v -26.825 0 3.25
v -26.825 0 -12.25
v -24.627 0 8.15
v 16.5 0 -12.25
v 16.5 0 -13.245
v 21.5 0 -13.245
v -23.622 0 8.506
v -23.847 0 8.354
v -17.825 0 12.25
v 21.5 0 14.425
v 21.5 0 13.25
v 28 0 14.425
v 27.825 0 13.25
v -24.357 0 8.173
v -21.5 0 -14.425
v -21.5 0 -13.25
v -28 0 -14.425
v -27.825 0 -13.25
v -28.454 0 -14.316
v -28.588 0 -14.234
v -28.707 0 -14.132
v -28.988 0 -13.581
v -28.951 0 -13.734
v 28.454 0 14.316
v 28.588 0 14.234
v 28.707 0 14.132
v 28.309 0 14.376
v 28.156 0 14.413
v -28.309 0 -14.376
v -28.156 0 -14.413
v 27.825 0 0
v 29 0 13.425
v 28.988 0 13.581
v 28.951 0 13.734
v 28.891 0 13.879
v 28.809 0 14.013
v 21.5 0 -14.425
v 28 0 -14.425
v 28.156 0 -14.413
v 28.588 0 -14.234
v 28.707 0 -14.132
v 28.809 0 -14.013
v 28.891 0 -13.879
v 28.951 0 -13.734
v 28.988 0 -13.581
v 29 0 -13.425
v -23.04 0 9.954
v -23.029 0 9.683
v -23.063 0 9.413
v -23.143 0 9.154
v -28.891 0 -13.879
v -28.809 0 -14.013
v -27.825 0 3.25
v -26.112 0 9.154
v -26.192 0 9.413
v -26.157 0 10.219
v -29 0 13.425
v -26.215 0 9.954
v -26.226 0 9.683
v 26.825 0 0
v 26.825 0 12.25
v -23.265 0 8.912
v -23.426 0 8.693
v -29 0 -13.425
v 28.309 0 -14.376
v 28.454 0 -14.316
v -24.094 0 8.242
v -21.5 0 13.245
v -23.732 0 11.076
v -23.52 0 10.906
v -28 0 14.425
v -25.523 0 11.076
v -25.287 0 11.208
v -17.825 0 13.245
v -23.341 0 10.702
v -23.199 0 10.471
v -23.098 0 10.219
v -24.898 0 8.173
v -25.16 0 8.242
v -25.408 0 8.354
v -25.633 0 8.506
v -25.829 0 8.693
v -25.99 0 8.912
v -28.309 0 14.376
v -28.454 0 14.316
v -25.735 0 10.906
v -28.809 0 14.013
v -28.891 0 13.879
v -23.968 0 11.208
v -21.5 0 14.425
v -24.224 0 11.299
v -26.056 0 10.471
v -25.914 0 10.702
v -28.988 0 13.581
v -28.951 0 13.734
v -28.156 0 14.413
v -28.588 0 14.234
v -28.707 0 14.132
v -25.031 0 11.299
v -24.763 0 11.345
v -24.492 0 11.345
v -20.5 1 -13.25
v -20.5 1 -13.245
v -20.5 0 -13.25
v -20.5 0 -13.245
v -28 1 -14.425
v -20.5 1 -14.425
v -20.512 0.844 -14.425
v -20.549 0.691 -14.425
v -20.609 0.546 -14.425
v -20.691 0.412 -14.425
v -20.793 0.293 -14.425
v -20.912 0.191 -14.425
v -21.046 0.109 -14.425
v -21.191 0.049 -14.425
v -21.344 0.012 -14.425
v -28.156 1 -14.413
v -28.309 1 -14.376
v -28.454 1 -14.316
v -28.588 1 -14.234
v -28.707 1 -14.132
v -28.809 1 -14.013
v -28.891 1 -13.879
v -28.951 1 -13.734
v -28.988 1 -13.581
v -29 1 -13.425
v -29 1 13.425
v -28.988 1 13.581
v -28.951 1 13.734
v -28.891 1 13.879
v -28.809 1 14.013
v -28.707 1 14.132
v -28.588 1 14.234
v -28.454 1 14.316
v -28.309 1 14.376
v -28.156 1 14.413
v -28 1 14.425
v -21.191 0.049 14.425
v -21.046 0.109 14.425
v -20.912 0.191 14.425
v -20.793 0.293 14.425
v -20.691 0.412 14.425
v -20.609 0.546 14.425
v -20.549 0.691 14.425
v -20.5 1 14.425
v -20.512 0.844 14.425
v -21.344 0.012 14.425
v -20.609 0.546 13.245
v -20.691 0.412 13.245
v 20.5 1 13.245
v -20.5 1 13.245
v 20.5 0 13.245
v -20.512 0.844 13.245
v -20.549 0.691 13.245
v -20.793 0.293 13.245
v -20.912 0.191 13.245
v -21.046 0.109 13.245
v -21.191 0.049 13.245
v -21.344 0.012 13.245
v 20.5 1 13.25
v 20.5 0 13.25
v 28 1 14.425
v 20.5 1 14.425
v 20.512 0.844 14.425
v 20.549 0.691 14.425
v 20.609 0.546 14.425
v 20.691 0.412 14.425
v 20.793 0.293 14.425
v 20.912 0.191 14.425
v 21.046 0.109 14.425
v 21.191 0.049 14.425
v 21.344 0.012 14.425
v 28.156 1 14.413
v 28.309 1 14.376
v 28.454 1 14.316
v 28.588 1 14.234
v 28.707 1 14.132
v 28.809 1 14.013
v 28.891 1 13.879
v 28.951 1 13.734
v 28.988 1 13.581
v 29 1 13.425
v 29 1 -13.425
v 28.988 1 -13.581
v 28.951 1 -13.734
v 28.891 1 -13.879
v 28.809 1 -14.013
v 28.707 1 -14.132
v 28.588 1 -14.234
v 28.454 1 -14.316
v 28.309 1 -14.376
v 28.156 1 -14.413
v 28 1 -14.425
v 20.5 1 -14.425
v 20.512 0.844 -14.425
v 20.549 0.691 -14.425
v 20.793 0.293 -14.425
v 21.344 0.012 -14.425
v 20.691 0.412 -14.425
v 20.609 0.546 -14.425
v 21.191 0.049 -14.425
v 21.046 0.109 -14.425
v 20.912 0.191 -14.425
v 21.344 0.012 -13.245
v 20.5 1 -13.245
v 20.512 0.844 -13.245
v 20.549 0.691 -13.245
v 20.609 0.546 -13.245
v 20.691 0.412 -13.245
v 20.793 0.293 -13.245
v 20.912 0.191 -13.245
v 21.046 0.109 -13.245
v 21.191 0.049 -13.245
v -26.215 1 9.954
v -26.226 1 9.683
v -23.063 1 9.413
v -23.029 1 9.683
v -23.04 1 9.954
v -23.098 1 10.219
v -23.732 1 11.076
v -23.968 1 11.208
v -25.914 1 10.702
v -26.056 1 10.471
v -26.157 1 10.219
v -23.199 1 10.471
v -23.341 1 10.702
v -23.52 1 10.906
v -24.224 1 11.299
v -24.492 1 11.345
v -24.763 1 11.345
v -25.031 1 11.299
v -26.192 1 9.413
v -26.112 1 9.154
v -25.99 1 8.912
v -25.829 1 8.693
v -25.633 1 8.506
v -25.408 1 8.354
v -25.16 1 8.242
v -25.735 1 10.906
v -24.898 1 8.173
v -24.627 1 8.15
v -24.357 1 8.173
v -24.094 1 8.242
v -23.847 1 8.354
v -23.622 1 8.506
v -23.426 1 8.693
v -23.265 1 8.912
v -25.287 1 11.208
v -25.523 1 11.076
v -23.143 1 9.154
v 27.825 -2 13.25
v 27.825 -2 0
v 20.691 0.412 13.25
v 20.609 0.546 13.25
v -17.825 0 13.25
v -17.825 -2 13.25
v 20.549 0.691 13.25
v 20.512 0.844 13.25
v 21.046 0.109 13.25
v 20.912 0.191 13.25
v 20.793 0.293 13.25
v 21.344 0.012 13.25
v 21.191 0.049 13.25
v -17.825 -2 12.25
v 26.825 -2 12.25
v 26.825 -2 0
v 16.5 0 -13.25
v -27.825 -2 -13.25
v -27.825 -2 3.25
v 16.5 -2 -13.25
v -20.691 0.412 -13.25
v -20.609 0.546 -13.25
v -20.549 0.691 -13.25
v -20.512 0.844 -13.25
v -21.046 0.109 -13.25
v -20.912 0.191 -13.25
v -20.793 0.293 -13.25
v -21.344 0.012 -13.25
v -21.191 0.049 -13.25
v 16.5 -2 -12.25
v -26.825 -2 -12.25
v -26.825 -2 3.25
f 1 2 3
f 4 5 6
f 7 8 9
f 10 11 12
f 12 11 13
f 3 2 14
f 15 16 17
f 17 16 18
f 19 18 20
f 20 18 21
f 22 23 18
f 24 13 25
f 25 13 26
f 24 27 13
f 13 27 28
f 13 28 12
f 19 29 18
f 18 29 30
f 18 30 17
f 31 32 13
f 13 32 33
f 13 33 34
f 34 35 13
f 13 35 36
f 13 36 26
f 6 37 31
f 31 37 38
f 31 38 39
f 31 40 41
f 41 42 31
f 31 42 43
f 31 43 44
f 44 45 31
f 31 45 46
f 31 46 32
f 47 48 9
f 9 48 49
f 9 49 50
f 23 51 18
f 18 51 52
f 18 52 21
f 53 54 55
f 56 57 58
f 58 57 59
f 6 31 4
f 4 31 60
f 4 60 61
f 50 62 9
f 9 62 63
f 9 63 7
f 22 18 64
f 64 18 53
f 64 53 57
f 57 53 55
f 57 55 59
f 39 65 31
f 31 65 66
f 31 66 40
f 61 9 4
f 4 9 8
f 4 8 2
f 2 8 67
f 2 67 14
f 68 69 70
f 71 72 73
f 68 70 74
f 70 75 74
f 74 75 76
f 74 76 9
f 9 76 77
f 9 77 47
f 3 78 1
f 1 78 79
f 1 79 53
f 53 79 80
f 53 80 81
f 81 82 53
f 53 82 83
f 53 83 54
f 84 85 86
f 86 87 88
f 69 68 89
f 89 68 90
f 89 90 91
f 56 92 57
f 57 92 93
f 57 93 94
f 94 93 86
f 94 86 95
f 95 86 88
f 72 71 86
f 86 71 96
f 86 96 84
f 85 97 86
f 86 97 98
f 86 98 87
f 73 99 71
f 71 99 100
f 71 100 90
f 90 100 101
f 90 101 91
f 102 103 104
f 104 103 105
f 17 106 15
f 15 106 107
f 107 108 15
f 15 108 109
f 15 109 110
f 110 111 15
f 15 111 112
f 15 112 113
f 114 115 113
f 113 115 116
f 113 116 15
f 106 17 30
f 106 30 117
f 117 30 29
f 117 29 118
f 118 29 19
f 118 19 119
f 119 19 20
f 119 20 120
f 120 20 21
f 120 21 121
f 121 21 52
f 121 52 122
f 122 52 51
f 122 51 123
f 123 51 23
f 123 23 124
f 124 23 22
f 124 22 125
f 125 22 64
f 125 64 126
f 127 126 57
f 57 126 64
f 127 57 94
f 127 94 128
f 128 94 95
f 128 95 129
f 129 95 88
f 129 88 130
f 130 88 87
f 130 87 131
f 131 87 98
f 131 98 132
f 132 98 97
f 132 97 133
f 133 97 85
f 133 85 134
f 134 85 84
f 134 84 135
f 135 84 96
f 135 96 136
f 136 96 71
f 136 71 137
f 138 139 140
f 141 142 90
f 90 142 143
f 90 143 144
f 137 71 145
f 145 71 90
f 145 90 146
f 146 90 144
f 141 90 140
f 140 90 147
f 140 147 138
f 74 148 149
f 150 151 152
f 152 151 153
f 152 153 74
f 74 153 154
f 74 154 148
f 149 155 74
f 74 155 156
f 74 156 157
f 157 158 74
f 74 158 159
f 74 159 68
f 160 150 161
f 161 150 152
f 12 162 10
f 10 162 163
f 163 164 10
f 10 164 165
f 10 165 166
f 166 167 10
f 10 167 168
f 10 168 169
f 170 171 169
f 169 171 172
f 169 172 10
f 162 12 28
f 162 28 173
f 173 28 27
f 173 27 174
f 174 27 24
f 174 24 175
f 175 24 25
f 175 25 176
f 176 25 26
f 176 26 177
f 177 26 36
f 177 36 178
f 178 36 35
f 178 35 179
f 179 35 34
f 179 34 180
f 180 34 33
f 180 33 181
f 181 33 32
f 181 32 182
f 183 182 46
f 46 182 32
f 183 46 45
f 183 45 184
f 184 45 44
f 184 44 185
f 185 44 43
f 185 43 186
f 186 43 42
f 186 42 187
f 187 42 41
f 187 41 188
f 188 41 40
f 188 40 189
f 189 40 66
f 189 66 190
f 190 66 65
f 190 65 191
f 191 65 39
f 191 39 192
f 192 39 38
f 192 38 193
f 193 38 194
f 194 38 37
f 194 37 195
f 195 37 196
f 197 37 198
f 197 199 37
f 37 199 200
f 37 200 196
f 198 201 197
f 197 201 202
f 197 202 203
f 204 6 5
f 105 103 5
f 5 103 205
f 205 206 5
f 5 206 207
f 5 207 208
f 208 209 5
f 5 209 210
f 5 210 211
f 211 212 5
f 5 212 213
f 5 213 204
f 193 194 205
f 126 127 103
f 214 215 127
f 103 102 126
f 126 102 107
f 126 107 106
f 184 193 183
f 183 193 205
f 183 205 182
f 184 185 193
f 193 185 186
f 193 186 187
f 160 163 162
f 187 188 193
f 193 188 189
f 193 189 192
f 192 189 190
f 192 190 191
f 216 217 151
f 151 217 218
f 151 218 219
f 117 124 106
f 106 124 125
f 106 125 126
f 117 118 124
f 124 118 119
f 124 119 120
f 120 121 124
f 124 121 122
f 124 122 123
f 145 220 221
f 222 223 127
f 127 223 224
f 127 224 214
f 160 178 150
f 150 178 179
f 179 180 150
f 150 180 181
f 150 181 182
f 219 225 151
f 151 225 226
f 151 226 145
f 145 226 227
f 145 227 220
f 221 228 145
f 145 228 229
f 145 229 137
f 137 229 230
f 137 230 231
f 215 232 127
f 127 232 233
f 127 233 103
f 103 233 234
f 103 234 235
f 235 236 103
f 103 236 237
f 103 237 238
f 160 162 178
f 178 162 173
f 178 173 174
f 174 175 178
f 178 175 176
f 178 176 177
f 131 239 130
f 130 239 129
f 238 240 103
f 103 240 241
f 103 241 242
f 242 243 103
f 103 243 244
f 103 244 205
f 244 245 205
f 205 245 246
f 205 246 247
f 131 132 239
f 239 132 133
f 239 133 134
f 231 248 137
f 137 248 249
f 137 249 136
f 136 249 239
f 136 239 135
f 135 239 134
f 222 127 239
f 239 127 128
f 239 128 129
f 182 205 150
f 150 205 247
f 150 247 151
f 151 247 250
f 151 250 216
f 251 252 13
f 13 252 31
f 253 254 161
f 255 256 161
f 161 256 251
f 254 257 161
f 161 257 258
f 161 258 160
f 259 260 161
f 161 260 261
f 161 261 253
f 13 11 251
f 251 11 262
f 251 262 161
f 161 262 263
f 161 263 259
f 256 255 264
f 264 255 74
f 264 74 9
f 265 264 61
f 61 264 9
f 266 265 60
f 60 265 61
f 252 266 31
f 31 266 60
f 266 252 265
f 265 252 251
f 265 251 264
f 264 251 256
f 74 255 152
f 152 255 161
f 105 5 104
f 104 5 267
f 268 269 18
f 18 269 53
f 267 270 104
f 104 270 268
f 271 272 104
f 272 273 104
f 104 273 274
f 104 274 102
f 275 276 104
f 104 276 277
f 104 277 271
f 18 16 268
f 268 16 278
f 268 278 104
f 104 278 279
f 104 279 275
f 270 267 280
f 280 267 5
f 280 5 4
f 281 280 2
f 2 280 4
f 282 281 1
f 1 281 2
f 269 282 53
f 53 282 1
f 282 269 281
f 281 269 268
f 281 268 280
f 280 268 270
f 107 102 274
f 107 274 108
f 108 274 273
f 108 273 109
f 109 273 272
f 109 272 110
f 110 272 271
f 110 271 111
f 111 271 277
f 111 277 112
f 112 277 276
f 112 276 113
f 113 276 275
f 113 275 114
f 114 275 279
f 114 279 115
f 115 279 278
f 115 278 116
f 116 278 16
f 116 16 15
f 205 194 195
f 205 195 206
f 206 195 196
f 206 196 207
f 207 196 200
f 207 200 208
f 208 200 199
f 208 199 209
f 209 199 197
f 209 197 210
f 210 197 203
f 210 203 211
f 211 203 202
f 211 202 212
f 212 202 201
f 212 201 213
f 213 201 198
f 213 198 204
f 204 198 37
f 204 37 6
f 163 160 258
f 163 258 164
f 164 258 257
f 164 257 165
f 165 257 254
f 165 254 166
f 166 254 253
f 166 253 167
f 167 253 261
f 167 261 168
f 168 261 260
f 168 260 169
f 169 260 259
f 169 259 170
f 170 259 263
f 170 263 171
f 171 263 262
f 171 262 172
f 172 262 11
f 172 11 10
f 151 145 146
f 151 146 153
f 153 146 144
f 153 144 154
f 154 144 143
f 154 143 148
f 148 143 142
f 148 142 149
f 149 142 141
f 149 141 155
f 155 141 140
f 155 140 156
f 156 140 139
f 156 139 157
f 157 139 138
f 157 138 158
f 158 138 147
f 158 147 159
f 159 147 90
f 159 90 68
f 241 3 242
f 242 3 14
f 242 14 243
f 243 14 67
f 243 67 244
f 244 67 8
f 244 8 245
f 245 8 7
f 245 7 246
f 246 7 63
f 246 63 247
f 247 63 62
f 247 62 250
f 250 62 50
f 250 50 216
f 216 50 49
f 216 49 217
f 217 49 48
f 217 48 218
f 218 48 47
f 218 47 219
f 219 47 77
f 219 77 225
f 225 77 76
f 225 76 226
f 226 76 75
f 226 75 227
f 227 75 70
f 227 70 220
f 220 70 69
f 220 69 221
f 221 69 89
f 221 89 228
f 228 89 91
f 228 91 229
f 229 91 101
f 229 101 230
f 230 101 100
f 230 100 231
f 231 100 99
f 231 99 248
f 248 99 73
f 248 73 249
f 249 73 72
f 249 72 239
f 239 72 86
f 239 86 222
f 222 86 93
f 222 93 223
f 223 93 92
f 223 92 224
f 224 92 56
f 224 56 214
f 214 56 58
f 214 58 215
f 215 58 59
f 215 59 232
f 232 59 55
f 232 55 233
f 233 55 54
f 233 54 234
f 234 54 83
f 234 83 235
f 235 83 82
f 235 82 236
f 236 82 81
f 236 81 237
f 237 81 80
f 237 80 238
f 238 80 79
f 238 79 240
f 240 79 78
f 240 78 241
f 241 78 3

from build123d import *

# Parameters (mm, degrees)
BOSS_EXTRUDE10_DEPTH = 1
BOSS_EXTRUDE11_DEPTH = 2
FILLET1_R            = 1
SKETCH22_R           = 1.6
CUT_EXTRUDE1_DEPTH   = 10


with BuildPart() as part:
    # Sketch20 → Boss-Extrude10 (new body)
    with BuildSketch(Plane(origin=(0, 0, 0), x_dir=(1, 0, 0), z_dir=(0, 1, 0))):
        with BuildLine():
            Line((-28, 14.425), (-20.5, 14.425))
            Line((-20.5, 14.425), (-20.5, 13.245))
            Line((-20.5, 13.245), (20.5, 13.245))
            Line((20.5, 13.245), (20.5, 14.425))
            Line((20.5, 14.425), (28, 14.425))
            ThreePointArc((28, 14.425), (28.707106781, 14.132106781), (29, 13.425))
            Line((29, 13.425), (29, -13.425))
            ThreePointArc((29, -13.425), (28.707106781, -14.132106781), (28, -14.425))
            Line((28, -14.425), (20.5, -14.425))
            Line((20.5, -14.425), (20.5, -13.245))
            Line((20.5, -13.245), (-20.5, -13.245))
            Line((-20.5, -13.245), (-20.5, -14.425))
            Line((-20.5, -14.425), (-28, -14.425))
            ThreePointArc((-28, -14.425), (-28.707106781, -14.132106781), (-29, -13.425))
            Line((-29, -13.425), (-29, 13.425))
            ThreePointArc((-29, 13.425), (-28.707106781, 14.132106781), (-28, 14.425))
        make_face()
    extrude(amount=BOSS_EXTRUDE10_DEPTH)

    # Sketch21 → Boss-Extrude11 (add)
    with BuildSketch(Plane.XZ):
        Polygon((-27.825, 3.25), (-26.825, 3.25), (-26.825, -12.25), (16.5, -12.25), (16.5, -13.25), (-27.825, -13.25), align=None)
        Polygon((-17.825, 13.25), (-17.825, 12.25), (26.825, 12.25), (26.825, 0), (27.825, 0), (27.825, 13.25), align=None)
    extrude(amount=BOSS_EXTRUDE11_DEPTH)

    # Fillet1
    fillet1_edges = [part.edges().sort_by_distance(p)[0] for p in [
        (-20.5, 0, -13.8375),
        (20.5, 0, -13.835),
        (20.5, 0, 13.8375),
        (-20.5, 0, 13.835),
    ]]
    fillet(fillet1_edges, radius=FILLET1_R - 0.0001)  # a hair under: the kernel refuses the full size

    # Sketch22 → Cut-Extrude1 (cut)
    with BuildSketch(Plane.XZ):
        with Locations(Location((-24.627459856, 9.750471763, 0), (0, 0, 270))):
            Circle(SKETCH22_R)
    extrude(amount=-CUT_EXTRUDE1_DEPTH, mode=Mode.SUBTRACT)


solid = part.part
